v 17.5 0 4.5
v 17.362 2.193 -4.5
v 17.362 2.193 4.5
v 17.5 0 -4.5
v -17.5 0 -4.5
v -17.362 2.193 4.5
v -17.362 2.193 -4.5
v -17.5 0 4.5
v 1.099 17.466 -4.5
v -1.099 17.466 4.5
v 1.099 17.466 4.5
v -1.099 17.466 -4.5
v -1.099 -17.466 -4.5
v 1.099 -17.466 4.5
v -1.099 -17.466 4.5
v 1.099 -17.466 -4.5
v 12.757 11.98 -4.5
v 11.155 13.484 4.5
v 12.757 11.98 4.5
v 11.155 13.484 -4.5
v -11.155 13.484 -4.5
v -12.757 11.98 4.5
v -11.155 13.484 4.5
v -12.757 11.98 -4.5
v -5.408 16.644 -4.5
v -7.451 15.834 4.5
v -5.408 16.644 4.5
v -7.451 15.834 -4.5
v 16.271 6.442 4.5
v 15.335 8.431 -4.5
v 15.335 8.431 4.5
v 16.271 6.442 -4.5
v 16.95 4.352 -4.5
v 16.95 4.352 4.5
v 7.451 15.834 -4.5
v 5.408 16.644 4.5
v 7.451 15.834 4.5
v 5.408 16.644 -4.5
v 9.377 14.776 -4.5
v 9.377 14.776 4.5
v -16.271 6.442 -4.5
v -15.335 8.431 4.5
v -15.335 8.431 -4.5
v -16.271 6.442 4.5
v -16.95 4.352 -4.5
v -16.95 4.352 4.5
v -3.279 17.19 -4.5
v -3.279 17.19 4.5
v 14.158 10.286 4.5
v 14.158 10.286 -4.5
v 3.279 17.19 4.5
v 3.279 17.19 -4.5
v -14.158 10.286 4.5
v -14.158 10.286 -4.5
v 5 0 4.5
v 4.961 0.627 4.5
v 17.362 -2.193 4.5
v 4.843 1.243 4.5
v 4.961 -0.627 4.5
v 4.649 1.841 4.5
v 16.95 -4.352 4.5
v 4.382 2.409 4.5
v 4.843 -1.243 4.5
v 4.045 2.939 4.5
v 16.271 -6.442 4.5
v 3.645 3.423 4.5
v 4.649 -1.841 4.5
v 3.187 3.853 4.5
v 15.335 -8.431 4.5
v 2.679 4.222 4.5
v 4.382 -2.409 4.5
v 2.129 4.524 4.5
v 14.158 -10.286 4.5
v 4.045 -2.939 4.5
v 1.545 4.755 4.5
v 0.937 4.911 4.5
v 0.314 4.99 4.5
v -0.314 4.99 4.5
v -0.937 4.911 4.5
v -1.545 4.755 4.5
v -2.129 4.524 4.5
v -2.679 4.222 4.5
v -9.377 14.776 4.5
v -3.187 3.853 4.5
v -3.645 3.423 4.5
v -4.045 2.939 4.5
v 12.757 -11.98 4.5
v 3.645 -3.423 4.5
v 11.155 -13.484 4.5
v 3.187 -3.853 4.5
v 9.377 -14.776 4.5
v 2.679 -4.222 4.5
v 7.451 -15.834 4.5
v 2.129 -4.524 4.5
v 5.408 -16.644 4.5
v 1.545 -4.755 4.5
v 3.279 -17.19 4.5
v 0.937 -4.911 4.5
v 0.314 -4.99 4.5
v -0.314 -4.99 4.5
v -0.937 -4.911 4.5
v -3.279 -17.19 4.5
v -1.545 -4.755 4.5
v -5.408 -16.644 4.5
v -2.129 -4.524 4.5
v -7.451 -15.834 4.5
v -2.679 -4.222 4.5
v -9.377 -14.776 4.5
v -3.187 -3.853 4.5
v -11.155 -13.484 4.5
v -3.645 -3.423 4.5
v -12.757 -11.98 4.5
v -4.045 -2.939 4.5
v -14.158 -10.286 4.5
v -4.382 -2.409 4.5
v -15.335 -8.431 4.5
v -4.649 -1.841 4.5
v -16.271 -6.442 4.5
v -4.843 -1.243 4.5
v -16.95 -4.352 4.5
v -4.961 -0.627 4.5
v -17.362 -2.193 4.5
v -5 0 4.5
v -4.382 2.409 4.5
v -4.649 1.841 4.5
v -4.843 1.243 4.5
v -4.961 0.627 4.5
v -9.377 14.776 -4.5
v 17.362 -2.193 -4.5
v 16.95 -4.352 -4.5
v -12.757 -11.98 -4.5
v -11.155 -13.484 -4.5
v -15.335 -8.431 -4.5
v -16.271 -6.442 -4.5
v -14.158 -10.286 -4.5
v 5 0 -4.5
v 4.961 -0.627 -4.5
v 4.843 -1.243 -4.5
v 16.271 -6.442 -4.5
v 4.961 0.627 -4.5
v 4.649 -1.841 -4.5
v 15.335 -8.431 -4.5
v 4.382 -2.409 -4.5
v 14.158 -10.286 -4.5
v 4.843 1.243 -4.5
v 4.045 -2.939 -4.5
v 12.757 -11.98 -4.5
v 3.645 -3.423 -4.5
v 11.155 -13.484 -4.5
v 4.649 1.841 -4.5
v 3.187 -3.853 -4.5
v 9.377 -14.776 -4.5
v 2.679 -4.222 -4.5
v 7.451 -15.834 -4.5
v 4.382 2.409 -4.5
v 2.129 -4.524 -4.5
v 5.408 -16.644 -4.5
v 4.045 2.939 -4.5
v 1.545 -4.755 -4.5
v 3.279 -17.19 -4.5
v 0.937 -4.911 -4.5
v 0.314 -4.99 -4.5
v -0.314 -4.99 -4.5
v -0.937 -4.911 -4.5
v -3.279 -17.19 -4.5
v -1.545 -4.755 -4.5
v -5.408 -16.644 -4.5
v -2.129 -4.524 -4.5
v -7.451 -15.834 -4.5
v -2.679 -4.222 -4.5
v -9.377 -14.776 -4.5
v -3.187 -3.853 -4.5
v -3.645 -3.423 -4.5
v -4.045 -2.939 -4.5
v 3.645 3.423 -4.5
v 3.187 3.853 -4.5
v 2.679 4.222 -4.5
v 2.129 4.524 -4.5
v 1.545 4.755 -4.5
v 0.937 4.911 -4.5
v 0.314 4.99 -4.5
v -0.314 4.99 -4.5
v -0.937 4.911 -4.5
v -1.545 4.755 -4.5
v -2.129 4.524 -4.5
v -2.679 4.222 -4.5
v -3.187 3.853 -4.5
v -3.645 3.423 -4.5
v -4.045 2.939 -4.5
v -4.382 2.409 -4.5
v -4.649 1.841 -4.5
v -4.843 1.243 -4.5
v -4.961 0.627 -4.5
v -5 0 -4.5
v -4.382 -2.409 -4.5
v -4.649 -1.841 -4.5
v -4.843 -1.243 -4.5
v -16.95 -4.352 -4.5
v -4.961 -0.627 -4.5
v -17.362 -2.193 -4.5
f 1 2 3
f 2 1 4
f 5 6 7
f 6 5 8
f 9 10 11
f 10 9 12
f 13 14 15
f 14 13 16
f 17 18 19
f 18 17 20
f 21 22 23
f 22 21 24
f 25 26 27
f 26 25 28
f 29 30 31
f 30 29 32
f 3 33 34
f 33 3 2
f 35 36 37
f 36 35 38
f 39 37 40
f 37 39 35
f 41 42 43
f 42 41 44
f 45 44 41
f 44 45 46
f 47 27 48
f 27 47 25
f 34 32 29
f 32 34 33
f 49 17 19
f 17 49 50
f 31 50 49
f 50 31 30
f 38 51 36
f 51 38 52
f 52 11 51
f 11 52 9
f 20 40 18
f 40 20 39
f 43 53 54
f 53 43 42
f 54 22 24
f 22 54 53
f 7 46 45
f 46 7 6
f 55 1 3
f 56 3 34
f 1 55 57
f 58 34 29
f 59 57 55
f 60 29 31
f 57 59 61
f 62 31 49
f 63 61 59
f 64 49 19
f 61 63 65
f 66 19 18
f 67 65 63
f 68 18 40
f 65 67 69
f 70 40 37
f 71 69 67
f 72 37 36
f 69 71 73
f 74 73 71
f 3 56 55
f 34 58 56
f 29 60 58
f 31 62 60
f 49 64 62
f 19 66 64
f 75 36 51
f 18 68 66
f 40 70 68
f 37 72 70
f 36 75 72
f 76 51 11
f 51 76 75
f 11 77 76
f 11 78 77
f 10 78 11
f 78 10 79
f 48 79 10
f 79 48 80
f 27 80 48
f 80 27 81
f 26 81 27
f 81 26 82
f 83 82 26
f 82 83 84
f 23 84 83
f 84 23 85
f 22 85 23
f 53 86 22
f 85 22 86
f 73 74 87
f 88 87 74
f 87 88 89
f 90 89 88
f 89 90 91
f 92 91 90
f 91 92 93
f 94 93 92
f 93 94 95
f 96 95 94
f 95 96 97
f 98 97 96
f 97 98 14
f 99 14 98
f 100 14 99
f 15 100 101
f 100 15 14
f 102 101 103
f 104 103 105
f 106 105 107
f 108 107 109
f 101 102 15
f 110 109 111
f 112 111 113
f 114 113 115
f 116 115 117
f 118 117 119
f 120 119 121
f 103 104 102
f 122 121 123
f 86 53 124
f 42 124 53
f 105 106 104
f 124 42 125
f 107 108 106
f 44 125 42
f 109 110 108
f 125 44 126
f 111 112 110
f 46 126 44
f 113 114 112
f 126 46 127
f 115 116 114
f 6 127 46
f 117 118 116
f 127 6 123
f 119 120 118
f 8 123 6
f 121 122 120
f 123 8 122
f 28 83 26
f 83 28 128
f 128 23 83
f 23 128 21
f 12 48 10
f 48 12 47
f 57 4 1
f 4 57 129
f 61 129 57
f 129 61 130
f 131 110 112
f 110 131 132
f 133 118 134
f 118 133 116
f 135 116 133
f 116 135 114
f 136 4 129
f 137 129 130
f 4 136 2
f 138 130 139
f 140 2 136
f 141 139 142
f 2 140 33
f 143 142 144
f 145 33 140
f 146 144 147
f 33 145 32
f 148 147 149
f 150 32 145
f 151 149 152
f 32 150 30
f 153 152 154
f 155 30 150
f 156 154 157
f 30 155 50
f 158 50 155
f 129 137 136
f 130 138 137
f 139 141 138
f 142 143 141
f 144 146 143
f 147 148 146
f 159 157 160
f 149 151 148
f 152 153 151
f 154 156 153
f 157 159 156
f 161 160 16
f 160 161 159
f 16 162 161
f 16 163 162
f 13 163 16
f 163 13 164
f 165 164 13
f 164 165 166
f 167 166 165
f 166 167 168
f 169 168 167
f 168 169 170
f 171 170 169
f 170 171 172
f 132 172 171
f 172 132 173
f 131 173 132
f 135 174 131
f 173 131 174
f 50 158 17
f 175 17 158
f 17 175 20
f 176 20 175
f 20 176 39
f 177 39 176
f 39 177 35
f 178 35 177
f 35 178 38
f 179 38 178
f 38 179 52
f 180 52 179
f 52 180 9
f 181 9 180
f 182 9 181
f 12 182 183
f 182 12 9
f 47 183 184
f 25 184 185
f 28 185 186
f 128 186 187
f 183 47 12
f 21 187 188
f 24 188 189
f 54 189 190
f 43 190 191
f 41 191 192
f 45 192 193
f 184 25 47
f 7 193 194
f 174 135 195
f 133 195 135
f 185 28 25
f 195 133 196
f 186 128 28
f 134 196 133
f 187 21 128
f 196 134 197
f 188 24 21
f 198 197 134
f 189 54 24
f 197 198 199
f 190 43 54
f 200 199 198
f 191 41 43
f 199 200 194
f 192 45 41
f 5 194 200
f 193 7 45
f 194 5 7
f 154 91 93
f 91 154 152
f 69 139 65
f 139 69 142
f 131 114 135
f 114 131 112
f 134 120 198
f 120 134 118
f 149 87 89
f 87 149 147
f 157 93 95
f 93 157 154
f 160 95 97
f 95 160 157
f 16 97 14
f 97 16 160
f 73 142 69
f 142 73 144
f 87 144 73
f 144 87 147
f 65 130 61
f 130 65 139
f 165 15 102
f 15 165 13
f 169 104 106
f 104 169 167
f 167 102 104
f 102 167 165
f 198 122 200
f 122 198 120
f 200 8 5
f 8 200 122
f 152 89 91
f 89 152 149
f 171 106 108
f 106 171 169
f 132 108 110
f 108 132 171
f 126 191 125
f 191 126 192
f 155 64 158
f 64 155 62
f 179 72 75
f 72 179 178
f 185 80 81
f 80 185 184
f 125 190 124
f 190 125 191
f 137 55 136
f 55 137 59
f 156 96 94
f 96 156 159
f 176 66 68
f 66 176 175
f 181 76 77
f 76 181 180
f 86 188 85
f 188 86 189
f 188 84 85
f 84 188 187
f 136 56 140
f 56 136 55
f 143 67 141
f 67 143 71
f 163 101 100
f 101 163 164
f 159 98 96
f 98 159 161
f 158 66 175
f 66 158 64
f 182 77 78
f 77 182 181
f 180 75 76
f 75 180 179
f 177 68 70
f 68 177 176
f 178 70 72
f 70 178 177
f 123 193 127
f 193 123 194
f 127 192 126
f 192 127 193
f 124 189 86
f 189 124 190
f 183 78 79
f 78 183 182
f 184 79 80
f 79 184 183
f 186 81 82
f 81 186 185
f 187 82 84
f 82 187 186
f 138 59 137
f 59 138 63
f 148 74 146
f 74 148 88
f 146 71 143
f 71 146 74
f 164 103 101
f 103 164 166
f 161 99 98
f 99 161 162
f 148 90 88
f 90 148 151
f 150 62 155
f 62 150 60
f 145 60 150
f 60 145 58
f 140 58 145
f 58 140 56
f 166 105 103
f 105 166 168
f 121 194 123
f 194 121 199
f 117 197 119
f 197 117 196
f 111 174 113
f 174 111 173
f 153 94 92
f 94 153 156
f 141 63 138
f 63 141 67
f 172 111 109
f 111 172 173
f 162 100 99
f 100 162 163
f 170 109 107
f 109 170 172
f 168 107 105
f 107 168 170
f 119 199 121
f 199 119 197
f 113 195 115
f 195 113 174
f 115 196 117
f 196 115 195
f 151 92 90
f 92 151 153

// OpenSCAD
$fn = 50;


difference() {
	union() {
		translate(v = [0, 0, -4.5000000000]) {
			cylinder(h = 9, r = 17.5000000000);
		}
	}
	union() {
		translate(v = [0, 0, -100.0000000000]) {
			cylinder(h = 200, r = 5);
		}
	}
}
